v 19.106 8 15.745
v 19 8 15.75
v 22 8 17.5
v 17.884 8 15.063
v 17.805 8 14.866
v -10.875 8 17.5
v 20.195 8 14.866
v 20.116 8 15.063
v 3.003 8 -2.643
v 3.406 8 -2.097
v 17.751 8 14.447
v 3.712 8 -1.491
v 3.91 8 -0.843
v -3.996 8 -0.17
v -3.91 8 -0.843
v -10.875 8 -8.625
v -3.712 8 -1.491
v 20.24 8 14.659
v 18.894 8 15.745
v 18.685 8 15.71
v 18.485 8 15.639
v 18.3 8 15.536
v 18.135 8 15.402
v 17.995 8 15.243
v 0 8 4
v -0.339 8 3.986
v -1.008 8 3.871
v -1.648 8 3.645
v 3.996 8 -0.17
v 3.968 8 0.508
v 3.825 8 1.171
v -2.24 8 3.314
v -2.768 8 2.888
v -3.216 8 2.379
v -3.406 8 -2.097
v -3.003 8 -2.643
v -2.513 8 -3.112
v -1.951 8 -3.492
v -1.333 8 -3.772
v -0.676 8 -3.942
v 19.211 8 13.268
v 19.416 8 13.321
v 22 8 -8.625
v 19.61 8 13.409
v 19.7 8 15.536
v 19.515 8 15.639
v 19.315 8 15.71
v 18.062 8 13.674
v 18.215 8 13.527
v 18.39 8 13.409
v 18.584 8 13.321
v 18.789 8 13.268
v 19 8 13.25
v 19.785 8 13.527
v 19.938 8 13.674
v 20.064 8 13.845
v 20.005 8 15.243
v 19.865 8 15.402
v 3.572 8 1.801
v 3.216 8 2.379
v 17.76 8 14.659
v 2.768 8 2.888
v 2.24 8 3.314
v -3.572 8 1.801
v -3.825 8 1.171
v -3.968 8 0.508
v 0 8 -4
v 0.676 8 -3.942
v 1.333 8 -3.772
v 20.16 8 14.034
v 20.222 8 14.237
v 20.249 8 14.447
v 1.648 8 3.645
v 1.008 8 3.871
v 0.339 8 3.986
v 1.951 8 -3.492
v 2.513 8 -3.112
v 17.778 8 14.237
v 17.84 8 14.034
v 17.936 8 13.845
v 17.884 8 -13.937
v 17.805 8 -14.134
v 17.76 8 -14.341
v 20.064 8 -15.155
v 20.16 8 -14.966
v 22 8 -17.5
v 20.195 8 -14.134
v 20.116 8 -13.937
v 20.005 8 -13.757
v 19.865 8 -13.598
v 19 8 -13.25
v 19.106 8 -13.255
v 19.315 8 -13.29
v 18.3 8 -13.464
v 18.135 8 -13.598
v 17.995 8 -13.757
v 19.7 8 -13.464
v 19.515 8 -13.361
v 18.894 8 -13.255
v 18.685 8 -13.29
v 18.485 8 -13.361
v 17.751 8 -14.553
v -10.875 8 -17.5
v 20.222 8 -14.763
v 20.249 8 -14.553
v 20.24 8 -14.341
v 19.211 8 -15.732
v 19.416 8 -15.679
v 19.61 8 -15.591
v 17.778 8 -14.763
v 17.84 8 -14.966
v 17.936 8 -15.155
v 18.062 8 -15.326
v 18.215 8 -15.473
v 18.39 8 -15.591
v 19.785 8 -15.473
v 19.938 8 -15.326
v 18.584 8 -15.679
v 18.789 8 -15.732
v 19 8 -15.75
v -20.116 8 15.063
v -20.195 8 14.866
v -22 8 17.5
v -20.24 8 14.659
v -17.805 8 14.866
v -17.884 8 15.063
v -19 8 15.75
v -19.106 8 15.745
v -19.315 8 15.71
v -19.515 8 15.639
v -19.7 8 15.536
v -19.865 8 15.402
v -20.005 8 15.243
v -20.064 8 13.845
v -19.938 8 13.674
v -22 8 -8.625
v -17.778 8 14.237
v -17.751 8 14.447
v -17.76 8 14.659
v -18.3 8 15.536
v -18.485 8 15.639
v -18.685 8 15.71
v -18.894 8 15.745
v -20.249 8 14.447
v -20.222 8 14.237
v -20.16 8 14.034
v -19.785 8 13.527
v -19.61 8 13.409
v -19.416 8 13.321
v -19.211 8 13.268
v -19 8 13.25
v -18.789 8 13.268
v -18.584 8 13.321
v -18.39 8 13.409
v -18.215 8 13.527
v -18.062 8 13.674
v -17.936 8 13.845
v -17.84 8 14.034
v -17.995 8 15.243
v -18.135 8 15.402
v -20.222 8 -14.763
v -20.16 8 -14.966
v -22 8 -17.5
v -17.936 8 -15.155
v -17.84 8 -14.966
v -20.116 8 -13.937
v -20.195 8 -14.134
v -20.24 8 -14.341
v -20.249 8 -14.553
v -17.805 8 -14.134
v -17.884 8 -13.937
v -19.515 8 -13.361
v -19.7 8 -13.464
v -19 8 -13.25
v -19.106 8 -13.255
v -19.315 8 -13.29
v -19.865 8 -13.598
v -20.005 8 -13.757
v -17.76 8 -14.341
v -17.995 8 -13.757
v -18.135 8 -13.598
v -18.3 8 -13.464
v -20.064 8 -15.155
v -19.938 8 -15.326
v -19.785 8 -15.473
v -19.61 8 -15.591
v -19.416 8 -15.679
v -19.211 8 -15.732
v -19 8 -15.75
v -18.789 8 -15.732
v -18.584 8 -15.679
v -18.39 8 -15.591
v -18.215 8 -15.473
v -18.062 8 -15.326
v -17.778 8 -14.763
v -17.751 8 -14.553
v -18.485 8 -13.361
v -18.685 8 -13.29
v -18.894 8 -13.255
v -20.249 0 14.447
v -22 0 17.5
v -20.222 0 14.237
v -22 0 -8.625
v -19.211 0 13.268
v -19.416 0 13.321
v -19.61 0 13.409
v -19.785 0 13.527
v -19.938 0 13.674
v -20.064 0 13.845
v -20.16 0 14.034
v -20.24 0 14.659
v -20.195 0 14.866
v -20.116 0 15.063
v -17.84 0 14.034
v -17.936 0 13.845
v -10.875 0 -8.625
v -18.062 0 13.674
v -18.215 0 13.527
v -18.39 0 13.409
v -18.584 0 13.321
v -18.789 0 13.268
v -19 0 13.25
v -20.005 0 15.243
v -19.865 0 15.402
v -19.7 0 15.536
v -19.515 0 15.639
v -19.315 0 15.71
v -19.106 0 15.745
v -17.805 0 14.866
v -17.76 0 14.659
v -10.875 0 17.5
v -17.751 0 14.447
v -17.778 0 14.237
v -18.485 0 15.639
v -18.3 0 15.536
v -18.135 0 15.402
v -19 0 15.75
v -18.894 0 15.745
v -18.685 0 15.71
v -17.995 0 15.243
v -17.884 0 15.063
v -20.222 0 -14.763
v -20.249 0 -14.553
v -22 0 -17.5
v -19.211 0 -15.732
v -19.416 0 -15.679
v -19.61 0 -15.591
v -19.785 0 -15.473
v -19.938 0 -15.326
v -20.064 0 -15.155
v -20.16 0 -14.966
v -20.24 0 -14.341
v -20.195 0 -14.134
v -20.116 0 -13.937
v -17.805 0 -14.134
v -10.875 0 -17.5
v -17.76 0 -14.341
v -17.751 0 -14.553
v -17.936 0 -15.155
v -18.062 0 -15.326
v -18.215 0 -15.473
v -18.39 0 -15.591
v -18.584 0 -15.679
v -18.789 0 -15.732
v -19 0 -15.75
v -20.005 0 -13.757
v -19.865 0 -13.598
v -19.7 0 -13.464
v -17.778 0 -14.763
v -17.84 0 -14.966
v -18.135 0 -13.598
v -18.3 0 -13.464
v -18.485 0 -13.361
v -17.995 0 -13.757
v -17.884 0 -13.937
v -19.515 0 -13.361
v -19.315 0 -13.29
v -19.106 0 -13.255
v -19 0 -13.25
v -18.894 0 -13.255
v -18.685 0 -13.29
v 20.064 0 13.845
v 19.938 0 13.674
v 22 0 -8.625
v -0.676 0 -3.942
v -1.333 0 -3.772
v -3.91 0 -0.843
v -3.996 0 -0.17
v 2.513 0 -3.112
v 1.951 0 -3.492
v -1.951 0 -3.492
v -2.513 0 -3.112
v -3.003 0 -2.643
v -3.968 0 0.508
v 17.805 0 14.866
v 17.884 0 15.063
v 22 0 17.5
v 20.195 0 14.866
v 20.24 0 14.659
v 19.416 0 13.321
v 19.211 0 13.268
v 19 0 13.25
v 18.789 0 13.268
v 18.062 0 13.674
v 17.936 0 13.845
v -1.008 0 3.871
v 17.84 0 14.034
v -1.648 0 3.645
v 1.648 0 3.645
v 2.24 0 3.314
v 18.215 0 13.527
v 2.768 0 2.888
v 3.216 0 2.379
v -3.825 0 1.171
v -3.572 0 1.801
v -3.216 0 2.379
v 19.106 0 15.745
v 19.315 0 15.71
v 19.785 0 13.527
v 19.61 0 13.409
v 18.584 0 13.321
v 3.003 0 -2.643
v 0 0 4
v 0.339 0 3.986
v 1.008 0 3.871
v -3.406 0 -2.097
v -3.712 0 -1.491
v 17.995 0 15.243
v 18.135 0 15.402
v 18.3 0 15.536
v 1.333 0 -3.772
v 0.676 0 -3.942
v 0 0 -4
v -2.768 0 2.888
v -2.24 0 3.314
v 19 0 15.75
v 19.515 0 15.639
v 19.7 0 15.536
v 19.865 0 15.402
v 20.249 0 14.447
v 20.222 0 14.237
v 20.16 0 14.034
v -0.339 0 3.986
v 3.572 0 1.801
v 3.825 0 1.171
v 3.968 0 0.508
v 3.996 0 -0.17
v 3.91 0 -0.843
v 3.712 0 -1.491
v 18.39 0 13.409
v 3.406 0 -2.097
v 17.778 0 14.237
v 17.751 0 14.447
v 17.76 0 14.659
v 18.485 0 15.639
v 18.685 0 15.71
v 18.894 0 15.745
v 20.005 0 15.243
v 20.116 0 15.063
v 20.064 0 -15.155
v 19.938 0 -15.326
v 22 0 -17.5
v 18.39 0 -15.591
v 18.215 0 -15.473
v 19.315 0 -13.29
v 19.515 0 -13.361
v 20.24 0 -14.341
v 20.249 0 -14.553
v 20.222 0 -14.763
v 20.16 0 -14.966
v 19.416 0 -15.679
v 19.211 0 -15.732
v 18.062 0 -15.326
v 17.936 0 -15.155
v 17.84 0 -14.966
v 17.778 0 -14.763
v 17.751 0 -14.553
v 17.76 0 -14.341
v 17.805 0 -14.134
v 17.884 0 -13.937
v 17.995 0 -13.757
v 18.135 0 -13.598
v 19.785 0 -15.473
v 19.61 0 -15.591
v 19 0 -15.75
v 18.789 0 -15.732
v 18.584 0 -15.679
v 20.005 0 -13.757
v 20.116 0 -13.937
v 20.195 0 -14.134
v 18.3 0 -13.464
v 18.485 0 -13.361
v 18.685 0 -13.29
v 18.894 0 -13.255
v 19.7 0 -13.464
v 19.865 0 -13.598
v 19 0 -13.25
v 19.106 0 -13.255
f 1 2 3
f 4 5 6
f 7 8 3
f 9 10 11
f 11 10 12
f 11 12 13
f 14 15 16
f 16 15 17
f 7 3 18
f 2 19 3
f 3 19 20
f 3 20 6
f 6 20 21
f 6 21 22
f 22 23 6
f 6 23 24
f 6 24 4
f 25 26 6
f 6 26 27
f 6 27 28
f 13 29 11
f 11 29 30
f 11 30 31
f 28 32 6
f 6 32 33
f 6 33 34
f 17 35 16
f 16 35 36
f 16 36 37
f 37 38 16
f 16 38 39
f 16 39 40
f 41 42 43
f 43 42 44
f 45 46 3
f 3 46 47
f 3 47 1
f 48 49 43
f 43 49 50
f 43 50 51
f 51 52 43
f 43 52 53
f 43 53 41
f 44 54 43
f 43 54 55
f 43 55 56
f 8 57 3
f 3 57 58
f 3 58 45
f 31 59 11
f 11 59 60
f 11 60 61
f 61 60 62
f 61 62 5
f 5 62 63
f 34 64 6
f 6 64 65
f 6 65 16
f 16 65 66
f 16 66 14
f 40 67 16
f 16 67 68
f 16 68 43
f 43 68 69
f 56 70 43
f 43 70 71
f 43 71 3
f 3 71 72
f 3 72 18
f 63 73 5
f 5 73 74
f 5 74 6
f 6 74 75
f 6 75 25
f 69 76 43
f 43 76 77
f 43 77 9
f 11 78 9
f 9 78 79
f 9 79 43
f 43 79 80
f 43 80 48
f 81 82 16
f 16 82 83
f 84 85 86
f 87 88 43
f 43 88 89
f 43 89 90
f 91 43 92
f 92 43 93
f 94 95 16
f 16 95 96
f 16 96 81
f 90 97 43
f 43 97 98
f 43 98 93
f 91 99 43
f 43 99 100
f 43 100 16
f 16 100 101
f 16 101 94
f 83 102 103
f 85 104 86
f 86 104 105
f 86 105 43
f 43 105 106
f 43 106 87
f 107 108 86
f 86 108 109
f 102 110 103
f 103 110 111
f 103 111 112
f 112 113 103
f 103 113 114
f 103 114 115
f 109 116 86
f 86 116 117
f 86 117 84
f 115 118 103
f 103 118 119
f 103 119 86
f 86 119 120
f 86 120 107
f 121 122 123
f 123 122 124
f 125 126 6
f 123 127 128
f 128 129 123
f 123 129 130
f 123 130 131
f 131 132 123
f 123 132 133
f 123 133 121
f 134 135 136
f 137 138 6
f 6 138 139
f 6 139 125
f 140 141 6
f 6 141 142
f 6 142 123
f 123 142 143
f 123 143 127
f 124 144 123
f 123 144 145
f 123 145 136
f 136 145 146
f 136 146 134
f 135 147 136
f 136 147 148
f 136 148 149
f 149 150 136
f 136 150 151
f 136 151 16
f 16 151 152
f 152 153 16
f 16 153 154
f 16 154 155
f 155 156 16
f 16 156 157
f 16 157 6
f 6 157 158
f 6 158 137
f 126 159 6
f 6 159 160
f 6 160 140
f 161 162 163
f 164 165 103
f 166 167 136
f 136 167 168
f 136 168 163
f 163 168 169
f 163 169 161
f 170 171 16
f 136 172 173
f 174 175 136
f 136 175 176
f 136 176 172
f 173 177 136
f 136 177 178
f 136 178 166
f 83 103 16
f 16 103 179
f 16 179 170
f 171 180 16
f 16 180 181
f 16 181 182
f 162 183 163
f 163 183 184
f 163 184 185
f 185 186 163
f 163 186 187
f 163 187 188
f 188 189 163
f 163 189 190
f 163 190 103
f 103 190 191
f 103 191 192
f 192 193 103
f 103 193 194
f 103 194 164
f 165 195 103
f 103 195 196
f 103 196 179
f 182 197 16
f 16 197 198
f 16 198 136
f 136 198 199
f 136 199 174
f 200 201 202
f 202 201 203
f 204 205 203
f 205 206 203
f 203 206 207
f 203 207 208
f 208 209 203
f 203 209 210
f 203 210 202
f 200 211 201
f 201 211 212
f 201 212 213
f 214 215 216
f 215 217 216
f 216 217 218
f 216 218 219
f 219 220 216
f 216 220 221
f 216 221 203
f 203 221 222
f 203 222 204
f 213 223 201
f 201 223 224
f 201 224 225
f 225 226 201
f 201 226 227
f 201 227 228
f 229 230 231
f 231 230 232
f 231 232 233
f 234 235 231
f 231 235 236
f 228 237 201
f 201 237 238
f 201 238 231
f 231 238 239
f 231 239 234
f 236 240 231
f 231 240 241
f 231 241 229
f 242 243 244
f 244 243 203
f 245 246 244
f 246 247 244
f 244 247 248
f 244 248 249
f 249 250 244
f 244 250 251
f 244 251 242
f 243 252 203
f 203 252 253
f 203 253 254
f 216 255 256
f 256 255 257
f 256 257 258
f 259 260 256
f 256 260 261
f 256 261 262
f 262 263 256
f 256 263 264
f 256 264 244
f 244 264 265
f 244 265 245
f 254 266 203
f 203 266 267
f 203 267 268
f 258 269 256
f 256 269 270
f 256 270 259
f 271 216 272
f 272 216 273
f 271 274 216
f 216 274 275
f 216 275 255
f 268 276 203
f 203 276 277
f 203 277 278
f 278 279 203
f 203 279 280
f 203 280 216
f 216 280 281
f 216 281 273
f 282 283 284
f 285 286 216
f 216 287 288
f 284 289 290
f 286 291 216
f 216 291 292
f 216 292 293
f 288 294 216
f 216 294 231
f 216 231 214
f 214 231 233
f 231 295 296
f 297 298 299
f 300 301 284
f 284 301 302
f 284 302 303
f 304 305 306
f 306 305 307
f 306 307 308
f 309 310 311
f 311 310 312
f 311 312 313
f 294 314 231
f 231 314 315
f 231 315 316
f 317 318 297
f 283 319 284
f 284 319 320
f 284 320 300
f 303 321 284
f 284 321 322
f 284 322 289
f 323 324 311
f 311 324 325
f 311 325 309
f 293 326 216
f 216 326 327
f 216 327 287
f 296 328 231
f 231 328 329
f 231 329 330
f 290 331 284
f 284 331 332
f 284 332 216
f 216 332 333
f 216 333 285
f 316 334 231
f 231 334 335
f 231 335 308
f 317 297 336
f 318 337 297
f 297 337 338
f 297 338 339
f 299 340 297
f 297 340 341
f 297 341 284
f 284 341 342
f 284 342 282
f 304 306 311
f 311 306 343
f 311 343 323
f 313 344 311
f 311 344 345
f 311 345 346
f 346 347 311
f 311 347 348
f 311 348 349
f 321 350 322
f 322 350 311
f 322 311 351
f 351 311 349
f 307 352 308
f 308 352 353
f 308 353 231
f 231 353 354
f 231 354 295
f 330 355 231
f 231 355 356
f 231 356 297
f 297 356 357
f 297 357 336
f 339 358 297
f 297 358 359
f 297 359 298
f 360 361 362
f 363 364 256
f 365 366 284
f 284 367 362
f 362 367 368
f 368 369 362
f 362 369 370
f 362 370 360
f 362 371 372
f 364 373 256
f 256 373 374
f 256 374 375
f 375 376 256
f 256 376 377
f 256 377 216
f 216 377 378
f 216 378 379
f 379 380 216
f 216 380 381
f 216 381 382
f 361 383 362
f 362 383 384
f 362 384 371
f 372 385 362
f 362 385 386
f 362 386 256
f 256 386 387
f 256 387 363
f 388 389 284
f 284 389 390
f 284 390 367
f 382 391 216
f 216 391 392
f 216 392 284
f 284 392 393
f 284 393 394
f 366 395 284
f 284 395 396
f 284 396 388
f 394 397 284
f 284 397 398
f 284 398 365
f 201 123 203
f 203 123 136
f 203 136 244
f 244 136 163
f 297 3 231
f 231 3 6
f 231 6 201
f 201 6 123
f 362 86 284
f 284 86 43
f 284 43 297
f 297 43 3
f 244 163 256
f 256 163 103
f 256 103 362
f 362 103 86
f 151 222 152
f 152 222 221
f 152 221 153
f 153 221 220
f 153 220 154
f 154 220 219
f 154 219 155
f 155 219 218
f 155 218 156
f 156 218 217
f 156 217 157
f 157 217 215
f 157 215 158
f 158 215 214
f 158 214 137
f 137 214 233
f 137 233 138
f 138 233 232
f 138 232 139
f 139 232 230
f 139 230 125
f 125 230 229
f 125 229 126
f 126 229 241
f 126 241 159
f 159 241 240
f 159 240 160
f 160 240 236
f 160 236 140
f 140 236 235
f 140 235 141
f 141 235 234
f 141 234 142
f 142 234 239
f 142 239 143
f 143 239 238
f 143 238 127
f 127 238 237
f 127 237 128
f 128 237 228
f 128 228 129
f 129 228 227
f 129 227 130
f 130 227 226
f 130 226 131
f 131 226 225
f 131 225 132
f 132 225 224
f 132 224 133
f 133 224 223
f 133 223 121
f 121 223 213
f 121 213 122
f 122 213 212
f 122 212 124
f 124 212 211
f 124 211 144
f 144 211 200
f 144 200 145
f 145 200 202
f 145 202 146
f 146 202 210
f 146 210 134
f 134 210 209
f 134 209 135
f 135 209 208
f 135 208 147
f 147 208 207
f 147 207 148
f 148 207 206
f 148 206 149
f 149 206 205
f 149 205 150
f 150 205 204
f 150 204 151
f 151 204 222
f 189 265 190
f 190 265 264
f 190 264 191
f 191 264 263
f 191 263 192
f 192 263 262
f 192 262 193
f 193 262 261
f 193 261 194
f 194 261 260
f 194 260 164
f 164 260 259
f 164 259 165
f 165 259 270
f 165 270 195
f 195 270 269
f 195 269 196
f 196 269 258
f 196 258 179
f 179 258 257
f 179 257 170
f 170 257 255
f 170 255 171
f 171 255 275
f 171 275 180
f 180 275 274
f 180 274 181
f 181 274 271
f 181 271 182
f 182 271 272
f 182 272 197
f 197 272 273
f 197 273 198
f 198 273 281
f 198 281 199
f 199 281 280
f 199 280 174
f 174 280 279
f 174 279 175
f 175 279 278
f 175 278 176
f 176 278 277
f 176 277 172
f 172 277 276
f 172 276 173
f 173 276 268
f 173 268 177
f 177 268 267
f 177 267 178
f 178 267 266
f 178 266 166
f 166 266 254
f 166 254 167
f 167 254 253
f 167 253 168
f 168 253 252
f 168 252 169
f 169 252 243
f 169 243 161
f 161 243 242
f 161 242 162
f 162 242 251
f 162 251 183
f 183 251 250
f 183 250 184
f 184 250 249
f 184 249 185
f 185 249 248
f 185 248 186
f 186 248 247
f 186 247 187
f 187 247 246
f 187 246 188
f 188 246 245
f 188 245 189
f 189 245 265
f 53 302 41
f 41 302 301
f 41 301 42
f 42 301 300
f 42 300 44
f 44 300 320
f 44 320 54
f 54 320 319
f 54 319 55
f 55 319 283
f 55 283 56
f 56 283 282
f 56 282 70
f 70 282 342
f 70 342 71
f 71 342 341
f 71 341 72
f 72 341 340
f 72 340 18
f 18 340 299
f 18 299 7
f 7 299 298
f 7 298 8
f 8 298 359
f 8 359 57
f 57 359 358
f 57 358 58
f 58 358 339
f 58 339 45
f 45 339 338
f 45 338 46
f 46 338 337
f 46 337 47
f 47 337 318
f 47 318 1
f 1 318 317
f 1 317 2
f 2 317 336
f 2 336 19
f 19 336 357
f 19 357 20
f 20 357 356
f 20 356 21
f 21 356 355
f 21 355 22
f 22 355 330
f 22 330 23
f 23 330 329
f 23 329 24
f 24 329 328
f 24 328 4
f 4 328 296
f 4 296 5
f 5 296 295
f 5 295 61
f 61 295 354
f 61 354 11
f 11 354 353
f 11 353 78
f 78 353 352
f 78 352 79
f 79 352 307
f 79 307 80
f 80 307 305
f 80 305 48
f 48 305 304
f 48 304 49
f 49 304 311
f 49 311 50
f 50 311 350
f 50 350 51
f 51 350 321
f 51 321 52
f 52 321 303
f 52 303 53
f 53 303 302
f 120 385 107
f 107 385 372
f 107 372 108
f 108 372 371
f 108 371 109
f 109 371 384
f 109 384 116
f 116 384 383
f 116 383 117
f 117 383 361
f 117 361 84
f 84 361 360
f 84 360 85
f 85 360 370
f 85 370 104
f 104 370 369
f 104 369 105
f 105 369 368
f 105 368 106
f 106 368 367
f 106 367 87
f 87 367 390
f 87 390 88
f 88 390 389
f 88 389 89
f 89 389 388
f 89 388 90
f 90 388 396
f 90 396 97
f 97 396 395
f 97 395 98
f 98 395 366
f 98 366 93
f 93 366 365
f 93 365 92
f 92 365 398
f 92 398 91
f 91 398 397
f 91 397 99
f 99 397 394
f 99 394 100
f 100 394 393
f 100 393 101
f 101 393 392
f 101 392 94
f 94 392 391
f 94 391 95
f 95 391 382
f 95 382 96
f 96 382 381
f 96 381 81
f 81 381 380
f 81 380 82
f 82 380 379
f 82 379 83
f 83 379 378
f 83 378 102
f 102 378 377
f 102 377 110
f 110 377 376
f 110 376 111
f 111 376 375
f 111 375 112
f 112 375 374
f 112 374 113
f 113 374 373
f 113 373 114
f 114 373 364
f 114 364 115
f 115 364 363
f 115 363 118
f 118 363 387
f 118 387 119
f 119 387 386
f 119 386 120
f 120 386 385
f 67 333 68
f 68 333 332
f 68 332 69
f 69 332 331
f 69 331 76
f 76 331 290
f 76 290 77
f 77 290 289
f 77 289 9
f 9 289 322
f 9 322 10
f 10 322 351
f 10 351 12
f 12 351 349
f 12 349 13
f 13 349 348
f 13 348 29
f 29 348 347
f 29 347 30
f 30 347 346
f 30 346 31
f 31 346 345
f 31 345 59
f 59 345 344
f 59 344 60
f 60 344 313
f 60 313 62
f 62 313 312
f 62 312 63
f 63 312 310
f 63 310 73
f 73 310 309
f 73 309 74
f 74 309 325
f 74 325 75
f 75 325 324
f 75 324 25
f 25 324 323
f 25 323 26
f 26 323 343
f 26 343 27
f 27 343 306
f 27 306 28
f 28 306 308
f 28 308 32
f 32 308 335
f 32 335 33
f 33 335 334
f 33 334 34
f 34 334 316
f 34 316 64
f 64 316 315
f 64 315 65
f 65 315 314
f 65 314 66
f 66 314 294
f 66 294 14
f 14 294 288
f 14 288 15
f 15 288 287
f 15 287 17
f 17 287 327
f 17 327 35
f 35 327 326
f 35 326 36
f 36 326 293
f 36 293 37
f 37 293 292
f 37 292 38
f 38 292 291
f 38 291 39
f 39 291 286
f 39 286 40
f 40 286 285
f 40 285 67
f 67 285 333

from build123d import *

# Parameters (mm, degrees)
SKETCH16_W          = 44
SKETCH16_H          = 35
SKETCH16_R          = 1.25
BOSS_EXTRUDE1_DEPTH = 8
SKETCH1_R           = 4
CUT_EXTRUDE3_DEPTH  = 9


with BuildPart() as part:
    # Sketch16 → Boss-Extrude1 (new body)
    with BuildSketch(Plane(origin=(0, 0, 0), x_dir=(-1, 0, 0), z_dir=(0, 1, 0))):
        Rectangle(SKETCH16_W, SKETCH16_H)
        with Locations((-19, 14.5)):
            Circle(SKETCH16_R, mode=Mode.SUBTRACT)
        with Locations((19, 14.5)):
            Circle(SKETCH16_R, mode=Mode.SUBTRACT)
        with Locations((19, -14.5)):
            Circle(SKETCH16_R, mode=Mode.SUBTRACT)
        with Locations((-19, -14.5)):
            Circle(SKETCH16_R, mode=Mode.SUBTRACT)
    extrude(amount=BOSS_EXTRUDE1_DEPTH)

    # Sketch1 → Cut-Extrude3 (cut, through all)
    with BuildSketch(Plane(origin=(0, 0, 0), x_dir=(1, 0, 0), z_dir=(0, 1, 0))):
        Circle(SKETCH1_R)
    extrude(amount=CUT_EXTRUDE3_DEPTH, mode=Mode.SUBTRACT)


solid = part.part
